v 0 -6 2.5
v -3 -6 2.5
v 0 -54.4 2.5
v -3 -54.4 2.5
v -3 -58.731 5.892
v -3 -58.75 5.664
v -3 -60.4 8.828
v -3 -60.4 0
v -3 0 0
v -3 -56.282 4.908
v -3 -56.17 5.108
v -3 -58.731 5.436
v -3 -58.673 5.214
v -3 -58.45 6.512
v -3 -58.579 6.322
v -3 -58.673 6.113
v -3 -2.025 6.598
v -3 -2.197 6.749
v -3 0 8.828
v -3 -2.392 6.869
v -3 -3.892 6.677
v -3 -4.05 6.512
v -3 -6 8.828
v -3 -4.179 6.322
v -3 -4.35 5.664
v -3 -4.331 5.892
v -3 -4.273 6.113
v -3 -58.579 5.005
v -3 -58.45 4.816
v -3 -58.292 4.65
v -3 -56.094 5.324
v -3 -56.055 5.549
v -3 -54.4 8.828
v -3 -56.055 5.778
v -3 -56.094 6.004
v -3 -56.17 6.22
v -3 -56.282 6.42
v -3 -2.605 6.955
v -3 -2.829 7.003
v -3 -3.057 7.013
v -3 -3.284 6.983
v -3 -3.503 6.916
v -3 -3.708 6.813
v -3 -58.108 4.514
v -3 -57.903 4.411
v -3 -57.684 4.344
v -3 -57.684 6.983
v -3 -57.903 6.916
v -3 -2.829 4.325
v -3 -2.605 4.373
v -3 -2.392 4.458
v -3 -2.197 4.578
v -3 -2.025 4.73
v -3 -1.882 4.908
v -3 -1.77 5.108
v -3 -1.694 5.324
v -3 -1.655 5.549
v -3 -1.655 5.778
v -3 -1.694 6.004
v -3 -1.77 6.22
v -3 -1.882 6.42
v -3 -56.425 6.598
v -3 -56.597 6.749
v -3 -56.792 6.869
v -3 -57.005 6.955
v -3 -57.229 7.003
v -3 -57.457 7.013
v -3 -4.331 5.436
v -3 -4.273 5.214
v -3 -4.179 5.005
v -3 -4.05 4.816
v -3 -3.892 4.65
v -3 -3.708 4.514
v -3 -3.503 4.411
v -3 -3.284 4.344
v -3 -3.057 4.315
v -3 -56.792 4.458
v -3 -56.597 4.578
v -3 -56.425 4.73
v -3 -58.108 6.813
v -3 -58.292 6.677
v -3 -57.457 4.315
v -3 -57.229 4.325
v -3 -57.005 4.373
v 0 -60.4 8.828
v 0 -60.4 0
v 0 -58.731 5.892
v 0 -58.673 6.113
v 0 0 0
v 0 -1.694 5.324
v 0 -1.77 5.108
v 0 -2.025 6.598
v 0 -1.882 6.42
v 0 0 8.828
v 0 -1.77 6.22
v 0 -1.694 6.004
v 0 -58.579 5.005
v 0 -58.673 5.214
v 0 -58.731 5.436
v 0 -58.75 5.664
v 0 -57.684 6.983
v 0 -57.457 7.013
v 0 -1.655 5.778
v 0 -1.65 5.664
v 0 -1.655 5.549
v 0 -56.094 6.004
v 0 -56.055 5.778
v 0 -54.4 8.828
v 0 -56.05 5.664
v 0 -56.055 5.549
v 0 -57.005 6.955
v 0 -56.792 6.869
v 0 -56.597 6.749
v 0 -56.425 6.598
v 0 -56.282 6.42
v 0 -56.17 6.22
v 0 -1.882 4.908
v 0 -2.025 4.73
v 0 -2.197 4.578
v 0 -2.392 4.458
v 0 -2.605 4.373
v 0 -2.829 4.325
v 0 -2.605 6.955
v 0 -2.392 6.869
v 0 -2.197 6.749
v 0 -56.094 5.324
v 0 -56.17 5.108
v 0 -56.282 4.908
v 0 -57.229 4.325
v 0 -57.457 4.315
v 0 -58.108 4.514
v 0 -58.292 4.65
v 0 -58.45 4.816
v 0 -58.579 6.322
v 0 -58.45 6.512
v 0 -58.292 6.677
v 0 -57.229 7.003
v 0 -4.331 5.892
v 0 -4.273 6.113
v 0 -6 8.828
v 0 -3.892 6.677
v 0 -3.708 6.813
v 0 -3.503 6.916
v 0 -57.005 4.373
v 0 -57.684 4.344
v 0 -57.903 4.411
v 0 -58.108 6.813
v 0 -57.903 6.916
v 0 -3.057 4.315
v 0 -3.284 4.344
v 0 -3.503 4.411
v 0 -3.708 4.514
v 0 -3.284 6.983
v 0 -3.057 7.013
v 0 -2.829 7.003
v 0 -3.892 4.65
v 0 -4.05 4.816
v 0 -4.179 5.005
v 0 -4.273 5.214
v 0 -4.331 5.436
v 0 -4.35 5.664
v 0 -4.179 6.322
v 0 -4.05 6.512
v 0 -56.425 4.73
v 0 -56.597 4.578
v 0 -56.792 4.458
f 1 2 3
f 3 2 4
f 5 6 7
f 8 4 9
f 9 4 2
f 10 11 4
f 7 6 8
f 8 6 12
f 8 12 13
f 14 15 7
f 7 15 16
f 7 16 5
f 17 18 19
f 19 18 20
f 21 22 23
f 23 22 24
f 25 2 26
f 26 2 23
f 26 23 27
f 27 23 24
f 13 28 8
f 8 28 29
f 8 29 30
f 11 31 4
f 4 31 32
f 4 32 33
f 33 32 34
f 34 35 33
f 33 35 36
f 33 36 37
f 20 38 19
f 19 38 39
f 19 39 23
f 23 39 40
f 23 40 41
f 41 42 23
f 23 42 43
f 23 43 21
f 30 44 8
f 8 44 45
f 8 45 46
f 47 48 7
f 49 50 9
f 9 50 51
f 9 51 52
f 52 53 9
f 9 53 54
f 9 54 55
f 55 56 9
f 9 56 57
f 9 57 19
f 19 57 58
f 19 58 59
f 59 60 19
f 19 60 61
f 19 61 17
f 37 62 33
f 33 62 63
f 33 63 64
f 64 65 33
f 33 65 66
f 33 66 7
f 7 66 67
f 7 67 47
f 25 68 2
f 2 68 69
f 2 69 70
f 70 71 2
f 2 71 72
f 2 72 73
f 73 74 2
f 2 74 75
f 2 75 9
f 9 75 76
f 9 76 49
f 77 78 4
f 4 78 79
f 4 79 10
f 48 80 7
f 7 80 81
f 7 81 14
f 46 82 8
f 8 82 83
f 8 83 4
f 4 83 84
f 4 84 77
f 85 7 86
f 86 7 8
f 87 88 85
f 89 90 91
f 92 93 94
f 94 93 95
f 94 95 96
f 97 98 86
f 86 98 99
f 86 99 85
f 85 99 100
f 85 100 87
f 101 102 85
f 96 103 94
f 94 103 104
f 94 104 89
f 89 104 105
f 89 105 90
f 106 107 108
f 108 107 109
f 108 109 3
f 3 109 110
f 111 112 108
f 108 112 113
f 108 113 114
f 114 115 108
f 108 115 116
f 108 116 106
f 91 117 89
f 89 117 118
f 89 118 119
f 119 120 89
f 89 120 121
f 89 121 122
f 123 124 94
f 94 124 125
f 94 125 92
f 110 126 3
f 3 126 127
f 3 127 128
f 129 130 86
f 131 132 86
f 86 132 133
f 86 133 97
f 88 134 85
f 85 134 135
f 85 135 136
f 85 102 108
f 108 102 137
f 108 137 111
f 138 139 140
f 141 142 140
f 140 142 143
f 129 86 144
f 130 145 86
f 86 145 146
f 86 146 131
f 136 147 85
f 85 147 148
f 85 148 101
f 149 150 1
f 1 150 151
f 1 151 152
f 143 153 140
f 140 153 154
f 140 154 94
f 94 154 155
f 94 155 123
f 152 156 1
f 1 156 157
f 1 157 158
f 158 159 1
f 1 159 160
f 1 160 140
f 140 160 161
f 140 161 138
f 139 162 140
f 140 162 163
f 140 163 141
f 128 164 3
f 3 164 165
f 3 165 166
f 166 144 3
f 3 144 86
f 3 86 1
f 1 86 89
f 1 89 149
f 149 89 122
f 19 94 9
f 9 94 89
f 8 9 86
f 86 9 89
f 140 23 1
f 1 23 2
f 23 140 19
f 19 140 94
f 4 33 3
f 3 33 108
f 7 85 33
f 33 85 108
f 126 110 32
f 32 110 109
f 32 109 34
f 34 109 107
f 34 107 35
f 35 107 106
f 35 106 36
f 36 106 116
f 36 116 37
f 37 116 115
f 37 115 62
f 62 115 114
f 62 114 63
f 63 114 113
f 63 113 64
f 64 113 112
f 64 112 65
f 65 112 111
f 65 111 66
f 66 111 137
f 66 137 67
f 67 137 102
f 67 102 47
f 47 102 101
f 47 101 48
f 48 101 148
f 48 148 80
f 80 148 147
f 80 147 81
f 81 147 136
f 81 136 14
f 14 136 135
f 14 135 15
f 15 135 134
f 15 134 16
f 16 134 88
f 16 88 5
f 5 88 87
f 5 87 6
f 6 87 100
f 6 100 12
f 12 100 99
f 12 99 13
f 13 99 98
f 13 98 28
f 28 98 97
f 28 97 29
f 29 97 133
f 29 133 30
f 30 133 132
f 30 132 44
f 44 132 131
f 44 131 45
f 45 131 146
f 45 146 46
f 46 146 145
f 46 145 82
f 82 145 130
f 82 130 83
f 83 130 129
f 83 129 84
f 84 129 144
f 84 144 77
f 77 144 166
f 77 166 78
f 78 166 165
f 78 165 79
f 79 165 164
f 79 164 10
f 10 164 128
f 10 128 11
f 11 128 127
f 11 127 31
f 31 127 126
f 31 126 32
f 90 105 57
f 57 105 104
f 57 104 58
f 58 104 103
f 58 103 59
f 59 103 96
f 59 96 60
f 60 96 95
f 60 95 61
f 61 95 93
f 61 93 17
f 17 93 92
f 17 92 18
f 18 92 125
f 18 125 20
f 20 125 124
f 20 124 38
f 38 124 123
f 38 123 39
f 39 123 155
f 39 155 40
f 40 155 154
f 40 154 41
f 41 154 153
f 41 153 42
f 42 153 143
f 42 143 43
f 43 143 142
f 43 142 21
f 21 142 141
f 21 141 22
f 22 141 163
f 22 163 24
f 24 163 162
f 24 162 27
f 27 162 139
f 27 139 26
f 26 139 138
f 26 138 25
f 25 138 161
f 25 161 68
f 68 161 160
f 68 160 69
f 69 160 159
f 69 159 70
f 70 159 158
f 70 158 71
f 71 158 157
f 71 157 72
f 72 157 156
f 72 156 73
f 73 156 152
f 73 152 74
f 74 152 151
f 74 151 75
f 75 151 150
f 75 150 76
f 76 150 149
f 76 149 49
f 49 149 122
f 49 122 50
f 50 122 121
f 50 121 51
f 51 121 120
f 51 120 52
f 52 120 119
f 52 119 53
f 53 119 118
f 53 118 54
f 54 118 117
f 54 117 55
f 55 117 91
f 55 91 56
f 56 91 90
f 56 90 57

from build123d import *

# Parameters (mm, degrees)
SKICA2_W                 = 3
SKICA2_H                 = 60.4
P_IDAT_VYSUNUT_M1_DEPTH  = 2.5
SKICA2_3_W               = 3
SKICA2_3_H               = 6
P_IDAT_VYSUNUT_M2_DEPTH  = 8.8275
SKICA3_R                 = 1.35
ODEBRAT_VYSUNUT_M1_DEPTH = 8.8275


with BuildPart() as part:
    # Skica2 → P_idat vysunut_m1 (new body)
    with BuildSketch(Plane.XY):
        with Locations((-1.5, -30.2)):
            Rectangle(SKICA2_W, SKICA2_H)
    extrude(amount=P_IDAT_VYSUNUT_M1_DEPTH)

    # Skica2_3 → P_idat vysunut_m2 (add)
    with BuildSketch(Plane.XY):
        with Locations((-1.5, -3)):
            Rectangle(SKICA2_3_W, SKICA2_3_H)
        with Locations((-1.5, -57.4)):
            Rectangle(SKICA2_3_W, SKICA2_3_H)
    extrude(amount=P_IDAT_VYSUNUT_M2_DEPTH)

    # Skica3 → Odebrat vysunut_m1 (cut)
    with BuildSketch(Plane.ZY.offset(3)):
        with Locations((5.66375, -3)):
            Circle(SKICA3_R)
        with Locations((5.66375, -57.4)):
            Circle(SKICA3_R)
    extrude(amount=-ODEBRAT_VYSUNUT_M1_DEPTH, mode=Mode.SUBTRACT)


solid = part.part
